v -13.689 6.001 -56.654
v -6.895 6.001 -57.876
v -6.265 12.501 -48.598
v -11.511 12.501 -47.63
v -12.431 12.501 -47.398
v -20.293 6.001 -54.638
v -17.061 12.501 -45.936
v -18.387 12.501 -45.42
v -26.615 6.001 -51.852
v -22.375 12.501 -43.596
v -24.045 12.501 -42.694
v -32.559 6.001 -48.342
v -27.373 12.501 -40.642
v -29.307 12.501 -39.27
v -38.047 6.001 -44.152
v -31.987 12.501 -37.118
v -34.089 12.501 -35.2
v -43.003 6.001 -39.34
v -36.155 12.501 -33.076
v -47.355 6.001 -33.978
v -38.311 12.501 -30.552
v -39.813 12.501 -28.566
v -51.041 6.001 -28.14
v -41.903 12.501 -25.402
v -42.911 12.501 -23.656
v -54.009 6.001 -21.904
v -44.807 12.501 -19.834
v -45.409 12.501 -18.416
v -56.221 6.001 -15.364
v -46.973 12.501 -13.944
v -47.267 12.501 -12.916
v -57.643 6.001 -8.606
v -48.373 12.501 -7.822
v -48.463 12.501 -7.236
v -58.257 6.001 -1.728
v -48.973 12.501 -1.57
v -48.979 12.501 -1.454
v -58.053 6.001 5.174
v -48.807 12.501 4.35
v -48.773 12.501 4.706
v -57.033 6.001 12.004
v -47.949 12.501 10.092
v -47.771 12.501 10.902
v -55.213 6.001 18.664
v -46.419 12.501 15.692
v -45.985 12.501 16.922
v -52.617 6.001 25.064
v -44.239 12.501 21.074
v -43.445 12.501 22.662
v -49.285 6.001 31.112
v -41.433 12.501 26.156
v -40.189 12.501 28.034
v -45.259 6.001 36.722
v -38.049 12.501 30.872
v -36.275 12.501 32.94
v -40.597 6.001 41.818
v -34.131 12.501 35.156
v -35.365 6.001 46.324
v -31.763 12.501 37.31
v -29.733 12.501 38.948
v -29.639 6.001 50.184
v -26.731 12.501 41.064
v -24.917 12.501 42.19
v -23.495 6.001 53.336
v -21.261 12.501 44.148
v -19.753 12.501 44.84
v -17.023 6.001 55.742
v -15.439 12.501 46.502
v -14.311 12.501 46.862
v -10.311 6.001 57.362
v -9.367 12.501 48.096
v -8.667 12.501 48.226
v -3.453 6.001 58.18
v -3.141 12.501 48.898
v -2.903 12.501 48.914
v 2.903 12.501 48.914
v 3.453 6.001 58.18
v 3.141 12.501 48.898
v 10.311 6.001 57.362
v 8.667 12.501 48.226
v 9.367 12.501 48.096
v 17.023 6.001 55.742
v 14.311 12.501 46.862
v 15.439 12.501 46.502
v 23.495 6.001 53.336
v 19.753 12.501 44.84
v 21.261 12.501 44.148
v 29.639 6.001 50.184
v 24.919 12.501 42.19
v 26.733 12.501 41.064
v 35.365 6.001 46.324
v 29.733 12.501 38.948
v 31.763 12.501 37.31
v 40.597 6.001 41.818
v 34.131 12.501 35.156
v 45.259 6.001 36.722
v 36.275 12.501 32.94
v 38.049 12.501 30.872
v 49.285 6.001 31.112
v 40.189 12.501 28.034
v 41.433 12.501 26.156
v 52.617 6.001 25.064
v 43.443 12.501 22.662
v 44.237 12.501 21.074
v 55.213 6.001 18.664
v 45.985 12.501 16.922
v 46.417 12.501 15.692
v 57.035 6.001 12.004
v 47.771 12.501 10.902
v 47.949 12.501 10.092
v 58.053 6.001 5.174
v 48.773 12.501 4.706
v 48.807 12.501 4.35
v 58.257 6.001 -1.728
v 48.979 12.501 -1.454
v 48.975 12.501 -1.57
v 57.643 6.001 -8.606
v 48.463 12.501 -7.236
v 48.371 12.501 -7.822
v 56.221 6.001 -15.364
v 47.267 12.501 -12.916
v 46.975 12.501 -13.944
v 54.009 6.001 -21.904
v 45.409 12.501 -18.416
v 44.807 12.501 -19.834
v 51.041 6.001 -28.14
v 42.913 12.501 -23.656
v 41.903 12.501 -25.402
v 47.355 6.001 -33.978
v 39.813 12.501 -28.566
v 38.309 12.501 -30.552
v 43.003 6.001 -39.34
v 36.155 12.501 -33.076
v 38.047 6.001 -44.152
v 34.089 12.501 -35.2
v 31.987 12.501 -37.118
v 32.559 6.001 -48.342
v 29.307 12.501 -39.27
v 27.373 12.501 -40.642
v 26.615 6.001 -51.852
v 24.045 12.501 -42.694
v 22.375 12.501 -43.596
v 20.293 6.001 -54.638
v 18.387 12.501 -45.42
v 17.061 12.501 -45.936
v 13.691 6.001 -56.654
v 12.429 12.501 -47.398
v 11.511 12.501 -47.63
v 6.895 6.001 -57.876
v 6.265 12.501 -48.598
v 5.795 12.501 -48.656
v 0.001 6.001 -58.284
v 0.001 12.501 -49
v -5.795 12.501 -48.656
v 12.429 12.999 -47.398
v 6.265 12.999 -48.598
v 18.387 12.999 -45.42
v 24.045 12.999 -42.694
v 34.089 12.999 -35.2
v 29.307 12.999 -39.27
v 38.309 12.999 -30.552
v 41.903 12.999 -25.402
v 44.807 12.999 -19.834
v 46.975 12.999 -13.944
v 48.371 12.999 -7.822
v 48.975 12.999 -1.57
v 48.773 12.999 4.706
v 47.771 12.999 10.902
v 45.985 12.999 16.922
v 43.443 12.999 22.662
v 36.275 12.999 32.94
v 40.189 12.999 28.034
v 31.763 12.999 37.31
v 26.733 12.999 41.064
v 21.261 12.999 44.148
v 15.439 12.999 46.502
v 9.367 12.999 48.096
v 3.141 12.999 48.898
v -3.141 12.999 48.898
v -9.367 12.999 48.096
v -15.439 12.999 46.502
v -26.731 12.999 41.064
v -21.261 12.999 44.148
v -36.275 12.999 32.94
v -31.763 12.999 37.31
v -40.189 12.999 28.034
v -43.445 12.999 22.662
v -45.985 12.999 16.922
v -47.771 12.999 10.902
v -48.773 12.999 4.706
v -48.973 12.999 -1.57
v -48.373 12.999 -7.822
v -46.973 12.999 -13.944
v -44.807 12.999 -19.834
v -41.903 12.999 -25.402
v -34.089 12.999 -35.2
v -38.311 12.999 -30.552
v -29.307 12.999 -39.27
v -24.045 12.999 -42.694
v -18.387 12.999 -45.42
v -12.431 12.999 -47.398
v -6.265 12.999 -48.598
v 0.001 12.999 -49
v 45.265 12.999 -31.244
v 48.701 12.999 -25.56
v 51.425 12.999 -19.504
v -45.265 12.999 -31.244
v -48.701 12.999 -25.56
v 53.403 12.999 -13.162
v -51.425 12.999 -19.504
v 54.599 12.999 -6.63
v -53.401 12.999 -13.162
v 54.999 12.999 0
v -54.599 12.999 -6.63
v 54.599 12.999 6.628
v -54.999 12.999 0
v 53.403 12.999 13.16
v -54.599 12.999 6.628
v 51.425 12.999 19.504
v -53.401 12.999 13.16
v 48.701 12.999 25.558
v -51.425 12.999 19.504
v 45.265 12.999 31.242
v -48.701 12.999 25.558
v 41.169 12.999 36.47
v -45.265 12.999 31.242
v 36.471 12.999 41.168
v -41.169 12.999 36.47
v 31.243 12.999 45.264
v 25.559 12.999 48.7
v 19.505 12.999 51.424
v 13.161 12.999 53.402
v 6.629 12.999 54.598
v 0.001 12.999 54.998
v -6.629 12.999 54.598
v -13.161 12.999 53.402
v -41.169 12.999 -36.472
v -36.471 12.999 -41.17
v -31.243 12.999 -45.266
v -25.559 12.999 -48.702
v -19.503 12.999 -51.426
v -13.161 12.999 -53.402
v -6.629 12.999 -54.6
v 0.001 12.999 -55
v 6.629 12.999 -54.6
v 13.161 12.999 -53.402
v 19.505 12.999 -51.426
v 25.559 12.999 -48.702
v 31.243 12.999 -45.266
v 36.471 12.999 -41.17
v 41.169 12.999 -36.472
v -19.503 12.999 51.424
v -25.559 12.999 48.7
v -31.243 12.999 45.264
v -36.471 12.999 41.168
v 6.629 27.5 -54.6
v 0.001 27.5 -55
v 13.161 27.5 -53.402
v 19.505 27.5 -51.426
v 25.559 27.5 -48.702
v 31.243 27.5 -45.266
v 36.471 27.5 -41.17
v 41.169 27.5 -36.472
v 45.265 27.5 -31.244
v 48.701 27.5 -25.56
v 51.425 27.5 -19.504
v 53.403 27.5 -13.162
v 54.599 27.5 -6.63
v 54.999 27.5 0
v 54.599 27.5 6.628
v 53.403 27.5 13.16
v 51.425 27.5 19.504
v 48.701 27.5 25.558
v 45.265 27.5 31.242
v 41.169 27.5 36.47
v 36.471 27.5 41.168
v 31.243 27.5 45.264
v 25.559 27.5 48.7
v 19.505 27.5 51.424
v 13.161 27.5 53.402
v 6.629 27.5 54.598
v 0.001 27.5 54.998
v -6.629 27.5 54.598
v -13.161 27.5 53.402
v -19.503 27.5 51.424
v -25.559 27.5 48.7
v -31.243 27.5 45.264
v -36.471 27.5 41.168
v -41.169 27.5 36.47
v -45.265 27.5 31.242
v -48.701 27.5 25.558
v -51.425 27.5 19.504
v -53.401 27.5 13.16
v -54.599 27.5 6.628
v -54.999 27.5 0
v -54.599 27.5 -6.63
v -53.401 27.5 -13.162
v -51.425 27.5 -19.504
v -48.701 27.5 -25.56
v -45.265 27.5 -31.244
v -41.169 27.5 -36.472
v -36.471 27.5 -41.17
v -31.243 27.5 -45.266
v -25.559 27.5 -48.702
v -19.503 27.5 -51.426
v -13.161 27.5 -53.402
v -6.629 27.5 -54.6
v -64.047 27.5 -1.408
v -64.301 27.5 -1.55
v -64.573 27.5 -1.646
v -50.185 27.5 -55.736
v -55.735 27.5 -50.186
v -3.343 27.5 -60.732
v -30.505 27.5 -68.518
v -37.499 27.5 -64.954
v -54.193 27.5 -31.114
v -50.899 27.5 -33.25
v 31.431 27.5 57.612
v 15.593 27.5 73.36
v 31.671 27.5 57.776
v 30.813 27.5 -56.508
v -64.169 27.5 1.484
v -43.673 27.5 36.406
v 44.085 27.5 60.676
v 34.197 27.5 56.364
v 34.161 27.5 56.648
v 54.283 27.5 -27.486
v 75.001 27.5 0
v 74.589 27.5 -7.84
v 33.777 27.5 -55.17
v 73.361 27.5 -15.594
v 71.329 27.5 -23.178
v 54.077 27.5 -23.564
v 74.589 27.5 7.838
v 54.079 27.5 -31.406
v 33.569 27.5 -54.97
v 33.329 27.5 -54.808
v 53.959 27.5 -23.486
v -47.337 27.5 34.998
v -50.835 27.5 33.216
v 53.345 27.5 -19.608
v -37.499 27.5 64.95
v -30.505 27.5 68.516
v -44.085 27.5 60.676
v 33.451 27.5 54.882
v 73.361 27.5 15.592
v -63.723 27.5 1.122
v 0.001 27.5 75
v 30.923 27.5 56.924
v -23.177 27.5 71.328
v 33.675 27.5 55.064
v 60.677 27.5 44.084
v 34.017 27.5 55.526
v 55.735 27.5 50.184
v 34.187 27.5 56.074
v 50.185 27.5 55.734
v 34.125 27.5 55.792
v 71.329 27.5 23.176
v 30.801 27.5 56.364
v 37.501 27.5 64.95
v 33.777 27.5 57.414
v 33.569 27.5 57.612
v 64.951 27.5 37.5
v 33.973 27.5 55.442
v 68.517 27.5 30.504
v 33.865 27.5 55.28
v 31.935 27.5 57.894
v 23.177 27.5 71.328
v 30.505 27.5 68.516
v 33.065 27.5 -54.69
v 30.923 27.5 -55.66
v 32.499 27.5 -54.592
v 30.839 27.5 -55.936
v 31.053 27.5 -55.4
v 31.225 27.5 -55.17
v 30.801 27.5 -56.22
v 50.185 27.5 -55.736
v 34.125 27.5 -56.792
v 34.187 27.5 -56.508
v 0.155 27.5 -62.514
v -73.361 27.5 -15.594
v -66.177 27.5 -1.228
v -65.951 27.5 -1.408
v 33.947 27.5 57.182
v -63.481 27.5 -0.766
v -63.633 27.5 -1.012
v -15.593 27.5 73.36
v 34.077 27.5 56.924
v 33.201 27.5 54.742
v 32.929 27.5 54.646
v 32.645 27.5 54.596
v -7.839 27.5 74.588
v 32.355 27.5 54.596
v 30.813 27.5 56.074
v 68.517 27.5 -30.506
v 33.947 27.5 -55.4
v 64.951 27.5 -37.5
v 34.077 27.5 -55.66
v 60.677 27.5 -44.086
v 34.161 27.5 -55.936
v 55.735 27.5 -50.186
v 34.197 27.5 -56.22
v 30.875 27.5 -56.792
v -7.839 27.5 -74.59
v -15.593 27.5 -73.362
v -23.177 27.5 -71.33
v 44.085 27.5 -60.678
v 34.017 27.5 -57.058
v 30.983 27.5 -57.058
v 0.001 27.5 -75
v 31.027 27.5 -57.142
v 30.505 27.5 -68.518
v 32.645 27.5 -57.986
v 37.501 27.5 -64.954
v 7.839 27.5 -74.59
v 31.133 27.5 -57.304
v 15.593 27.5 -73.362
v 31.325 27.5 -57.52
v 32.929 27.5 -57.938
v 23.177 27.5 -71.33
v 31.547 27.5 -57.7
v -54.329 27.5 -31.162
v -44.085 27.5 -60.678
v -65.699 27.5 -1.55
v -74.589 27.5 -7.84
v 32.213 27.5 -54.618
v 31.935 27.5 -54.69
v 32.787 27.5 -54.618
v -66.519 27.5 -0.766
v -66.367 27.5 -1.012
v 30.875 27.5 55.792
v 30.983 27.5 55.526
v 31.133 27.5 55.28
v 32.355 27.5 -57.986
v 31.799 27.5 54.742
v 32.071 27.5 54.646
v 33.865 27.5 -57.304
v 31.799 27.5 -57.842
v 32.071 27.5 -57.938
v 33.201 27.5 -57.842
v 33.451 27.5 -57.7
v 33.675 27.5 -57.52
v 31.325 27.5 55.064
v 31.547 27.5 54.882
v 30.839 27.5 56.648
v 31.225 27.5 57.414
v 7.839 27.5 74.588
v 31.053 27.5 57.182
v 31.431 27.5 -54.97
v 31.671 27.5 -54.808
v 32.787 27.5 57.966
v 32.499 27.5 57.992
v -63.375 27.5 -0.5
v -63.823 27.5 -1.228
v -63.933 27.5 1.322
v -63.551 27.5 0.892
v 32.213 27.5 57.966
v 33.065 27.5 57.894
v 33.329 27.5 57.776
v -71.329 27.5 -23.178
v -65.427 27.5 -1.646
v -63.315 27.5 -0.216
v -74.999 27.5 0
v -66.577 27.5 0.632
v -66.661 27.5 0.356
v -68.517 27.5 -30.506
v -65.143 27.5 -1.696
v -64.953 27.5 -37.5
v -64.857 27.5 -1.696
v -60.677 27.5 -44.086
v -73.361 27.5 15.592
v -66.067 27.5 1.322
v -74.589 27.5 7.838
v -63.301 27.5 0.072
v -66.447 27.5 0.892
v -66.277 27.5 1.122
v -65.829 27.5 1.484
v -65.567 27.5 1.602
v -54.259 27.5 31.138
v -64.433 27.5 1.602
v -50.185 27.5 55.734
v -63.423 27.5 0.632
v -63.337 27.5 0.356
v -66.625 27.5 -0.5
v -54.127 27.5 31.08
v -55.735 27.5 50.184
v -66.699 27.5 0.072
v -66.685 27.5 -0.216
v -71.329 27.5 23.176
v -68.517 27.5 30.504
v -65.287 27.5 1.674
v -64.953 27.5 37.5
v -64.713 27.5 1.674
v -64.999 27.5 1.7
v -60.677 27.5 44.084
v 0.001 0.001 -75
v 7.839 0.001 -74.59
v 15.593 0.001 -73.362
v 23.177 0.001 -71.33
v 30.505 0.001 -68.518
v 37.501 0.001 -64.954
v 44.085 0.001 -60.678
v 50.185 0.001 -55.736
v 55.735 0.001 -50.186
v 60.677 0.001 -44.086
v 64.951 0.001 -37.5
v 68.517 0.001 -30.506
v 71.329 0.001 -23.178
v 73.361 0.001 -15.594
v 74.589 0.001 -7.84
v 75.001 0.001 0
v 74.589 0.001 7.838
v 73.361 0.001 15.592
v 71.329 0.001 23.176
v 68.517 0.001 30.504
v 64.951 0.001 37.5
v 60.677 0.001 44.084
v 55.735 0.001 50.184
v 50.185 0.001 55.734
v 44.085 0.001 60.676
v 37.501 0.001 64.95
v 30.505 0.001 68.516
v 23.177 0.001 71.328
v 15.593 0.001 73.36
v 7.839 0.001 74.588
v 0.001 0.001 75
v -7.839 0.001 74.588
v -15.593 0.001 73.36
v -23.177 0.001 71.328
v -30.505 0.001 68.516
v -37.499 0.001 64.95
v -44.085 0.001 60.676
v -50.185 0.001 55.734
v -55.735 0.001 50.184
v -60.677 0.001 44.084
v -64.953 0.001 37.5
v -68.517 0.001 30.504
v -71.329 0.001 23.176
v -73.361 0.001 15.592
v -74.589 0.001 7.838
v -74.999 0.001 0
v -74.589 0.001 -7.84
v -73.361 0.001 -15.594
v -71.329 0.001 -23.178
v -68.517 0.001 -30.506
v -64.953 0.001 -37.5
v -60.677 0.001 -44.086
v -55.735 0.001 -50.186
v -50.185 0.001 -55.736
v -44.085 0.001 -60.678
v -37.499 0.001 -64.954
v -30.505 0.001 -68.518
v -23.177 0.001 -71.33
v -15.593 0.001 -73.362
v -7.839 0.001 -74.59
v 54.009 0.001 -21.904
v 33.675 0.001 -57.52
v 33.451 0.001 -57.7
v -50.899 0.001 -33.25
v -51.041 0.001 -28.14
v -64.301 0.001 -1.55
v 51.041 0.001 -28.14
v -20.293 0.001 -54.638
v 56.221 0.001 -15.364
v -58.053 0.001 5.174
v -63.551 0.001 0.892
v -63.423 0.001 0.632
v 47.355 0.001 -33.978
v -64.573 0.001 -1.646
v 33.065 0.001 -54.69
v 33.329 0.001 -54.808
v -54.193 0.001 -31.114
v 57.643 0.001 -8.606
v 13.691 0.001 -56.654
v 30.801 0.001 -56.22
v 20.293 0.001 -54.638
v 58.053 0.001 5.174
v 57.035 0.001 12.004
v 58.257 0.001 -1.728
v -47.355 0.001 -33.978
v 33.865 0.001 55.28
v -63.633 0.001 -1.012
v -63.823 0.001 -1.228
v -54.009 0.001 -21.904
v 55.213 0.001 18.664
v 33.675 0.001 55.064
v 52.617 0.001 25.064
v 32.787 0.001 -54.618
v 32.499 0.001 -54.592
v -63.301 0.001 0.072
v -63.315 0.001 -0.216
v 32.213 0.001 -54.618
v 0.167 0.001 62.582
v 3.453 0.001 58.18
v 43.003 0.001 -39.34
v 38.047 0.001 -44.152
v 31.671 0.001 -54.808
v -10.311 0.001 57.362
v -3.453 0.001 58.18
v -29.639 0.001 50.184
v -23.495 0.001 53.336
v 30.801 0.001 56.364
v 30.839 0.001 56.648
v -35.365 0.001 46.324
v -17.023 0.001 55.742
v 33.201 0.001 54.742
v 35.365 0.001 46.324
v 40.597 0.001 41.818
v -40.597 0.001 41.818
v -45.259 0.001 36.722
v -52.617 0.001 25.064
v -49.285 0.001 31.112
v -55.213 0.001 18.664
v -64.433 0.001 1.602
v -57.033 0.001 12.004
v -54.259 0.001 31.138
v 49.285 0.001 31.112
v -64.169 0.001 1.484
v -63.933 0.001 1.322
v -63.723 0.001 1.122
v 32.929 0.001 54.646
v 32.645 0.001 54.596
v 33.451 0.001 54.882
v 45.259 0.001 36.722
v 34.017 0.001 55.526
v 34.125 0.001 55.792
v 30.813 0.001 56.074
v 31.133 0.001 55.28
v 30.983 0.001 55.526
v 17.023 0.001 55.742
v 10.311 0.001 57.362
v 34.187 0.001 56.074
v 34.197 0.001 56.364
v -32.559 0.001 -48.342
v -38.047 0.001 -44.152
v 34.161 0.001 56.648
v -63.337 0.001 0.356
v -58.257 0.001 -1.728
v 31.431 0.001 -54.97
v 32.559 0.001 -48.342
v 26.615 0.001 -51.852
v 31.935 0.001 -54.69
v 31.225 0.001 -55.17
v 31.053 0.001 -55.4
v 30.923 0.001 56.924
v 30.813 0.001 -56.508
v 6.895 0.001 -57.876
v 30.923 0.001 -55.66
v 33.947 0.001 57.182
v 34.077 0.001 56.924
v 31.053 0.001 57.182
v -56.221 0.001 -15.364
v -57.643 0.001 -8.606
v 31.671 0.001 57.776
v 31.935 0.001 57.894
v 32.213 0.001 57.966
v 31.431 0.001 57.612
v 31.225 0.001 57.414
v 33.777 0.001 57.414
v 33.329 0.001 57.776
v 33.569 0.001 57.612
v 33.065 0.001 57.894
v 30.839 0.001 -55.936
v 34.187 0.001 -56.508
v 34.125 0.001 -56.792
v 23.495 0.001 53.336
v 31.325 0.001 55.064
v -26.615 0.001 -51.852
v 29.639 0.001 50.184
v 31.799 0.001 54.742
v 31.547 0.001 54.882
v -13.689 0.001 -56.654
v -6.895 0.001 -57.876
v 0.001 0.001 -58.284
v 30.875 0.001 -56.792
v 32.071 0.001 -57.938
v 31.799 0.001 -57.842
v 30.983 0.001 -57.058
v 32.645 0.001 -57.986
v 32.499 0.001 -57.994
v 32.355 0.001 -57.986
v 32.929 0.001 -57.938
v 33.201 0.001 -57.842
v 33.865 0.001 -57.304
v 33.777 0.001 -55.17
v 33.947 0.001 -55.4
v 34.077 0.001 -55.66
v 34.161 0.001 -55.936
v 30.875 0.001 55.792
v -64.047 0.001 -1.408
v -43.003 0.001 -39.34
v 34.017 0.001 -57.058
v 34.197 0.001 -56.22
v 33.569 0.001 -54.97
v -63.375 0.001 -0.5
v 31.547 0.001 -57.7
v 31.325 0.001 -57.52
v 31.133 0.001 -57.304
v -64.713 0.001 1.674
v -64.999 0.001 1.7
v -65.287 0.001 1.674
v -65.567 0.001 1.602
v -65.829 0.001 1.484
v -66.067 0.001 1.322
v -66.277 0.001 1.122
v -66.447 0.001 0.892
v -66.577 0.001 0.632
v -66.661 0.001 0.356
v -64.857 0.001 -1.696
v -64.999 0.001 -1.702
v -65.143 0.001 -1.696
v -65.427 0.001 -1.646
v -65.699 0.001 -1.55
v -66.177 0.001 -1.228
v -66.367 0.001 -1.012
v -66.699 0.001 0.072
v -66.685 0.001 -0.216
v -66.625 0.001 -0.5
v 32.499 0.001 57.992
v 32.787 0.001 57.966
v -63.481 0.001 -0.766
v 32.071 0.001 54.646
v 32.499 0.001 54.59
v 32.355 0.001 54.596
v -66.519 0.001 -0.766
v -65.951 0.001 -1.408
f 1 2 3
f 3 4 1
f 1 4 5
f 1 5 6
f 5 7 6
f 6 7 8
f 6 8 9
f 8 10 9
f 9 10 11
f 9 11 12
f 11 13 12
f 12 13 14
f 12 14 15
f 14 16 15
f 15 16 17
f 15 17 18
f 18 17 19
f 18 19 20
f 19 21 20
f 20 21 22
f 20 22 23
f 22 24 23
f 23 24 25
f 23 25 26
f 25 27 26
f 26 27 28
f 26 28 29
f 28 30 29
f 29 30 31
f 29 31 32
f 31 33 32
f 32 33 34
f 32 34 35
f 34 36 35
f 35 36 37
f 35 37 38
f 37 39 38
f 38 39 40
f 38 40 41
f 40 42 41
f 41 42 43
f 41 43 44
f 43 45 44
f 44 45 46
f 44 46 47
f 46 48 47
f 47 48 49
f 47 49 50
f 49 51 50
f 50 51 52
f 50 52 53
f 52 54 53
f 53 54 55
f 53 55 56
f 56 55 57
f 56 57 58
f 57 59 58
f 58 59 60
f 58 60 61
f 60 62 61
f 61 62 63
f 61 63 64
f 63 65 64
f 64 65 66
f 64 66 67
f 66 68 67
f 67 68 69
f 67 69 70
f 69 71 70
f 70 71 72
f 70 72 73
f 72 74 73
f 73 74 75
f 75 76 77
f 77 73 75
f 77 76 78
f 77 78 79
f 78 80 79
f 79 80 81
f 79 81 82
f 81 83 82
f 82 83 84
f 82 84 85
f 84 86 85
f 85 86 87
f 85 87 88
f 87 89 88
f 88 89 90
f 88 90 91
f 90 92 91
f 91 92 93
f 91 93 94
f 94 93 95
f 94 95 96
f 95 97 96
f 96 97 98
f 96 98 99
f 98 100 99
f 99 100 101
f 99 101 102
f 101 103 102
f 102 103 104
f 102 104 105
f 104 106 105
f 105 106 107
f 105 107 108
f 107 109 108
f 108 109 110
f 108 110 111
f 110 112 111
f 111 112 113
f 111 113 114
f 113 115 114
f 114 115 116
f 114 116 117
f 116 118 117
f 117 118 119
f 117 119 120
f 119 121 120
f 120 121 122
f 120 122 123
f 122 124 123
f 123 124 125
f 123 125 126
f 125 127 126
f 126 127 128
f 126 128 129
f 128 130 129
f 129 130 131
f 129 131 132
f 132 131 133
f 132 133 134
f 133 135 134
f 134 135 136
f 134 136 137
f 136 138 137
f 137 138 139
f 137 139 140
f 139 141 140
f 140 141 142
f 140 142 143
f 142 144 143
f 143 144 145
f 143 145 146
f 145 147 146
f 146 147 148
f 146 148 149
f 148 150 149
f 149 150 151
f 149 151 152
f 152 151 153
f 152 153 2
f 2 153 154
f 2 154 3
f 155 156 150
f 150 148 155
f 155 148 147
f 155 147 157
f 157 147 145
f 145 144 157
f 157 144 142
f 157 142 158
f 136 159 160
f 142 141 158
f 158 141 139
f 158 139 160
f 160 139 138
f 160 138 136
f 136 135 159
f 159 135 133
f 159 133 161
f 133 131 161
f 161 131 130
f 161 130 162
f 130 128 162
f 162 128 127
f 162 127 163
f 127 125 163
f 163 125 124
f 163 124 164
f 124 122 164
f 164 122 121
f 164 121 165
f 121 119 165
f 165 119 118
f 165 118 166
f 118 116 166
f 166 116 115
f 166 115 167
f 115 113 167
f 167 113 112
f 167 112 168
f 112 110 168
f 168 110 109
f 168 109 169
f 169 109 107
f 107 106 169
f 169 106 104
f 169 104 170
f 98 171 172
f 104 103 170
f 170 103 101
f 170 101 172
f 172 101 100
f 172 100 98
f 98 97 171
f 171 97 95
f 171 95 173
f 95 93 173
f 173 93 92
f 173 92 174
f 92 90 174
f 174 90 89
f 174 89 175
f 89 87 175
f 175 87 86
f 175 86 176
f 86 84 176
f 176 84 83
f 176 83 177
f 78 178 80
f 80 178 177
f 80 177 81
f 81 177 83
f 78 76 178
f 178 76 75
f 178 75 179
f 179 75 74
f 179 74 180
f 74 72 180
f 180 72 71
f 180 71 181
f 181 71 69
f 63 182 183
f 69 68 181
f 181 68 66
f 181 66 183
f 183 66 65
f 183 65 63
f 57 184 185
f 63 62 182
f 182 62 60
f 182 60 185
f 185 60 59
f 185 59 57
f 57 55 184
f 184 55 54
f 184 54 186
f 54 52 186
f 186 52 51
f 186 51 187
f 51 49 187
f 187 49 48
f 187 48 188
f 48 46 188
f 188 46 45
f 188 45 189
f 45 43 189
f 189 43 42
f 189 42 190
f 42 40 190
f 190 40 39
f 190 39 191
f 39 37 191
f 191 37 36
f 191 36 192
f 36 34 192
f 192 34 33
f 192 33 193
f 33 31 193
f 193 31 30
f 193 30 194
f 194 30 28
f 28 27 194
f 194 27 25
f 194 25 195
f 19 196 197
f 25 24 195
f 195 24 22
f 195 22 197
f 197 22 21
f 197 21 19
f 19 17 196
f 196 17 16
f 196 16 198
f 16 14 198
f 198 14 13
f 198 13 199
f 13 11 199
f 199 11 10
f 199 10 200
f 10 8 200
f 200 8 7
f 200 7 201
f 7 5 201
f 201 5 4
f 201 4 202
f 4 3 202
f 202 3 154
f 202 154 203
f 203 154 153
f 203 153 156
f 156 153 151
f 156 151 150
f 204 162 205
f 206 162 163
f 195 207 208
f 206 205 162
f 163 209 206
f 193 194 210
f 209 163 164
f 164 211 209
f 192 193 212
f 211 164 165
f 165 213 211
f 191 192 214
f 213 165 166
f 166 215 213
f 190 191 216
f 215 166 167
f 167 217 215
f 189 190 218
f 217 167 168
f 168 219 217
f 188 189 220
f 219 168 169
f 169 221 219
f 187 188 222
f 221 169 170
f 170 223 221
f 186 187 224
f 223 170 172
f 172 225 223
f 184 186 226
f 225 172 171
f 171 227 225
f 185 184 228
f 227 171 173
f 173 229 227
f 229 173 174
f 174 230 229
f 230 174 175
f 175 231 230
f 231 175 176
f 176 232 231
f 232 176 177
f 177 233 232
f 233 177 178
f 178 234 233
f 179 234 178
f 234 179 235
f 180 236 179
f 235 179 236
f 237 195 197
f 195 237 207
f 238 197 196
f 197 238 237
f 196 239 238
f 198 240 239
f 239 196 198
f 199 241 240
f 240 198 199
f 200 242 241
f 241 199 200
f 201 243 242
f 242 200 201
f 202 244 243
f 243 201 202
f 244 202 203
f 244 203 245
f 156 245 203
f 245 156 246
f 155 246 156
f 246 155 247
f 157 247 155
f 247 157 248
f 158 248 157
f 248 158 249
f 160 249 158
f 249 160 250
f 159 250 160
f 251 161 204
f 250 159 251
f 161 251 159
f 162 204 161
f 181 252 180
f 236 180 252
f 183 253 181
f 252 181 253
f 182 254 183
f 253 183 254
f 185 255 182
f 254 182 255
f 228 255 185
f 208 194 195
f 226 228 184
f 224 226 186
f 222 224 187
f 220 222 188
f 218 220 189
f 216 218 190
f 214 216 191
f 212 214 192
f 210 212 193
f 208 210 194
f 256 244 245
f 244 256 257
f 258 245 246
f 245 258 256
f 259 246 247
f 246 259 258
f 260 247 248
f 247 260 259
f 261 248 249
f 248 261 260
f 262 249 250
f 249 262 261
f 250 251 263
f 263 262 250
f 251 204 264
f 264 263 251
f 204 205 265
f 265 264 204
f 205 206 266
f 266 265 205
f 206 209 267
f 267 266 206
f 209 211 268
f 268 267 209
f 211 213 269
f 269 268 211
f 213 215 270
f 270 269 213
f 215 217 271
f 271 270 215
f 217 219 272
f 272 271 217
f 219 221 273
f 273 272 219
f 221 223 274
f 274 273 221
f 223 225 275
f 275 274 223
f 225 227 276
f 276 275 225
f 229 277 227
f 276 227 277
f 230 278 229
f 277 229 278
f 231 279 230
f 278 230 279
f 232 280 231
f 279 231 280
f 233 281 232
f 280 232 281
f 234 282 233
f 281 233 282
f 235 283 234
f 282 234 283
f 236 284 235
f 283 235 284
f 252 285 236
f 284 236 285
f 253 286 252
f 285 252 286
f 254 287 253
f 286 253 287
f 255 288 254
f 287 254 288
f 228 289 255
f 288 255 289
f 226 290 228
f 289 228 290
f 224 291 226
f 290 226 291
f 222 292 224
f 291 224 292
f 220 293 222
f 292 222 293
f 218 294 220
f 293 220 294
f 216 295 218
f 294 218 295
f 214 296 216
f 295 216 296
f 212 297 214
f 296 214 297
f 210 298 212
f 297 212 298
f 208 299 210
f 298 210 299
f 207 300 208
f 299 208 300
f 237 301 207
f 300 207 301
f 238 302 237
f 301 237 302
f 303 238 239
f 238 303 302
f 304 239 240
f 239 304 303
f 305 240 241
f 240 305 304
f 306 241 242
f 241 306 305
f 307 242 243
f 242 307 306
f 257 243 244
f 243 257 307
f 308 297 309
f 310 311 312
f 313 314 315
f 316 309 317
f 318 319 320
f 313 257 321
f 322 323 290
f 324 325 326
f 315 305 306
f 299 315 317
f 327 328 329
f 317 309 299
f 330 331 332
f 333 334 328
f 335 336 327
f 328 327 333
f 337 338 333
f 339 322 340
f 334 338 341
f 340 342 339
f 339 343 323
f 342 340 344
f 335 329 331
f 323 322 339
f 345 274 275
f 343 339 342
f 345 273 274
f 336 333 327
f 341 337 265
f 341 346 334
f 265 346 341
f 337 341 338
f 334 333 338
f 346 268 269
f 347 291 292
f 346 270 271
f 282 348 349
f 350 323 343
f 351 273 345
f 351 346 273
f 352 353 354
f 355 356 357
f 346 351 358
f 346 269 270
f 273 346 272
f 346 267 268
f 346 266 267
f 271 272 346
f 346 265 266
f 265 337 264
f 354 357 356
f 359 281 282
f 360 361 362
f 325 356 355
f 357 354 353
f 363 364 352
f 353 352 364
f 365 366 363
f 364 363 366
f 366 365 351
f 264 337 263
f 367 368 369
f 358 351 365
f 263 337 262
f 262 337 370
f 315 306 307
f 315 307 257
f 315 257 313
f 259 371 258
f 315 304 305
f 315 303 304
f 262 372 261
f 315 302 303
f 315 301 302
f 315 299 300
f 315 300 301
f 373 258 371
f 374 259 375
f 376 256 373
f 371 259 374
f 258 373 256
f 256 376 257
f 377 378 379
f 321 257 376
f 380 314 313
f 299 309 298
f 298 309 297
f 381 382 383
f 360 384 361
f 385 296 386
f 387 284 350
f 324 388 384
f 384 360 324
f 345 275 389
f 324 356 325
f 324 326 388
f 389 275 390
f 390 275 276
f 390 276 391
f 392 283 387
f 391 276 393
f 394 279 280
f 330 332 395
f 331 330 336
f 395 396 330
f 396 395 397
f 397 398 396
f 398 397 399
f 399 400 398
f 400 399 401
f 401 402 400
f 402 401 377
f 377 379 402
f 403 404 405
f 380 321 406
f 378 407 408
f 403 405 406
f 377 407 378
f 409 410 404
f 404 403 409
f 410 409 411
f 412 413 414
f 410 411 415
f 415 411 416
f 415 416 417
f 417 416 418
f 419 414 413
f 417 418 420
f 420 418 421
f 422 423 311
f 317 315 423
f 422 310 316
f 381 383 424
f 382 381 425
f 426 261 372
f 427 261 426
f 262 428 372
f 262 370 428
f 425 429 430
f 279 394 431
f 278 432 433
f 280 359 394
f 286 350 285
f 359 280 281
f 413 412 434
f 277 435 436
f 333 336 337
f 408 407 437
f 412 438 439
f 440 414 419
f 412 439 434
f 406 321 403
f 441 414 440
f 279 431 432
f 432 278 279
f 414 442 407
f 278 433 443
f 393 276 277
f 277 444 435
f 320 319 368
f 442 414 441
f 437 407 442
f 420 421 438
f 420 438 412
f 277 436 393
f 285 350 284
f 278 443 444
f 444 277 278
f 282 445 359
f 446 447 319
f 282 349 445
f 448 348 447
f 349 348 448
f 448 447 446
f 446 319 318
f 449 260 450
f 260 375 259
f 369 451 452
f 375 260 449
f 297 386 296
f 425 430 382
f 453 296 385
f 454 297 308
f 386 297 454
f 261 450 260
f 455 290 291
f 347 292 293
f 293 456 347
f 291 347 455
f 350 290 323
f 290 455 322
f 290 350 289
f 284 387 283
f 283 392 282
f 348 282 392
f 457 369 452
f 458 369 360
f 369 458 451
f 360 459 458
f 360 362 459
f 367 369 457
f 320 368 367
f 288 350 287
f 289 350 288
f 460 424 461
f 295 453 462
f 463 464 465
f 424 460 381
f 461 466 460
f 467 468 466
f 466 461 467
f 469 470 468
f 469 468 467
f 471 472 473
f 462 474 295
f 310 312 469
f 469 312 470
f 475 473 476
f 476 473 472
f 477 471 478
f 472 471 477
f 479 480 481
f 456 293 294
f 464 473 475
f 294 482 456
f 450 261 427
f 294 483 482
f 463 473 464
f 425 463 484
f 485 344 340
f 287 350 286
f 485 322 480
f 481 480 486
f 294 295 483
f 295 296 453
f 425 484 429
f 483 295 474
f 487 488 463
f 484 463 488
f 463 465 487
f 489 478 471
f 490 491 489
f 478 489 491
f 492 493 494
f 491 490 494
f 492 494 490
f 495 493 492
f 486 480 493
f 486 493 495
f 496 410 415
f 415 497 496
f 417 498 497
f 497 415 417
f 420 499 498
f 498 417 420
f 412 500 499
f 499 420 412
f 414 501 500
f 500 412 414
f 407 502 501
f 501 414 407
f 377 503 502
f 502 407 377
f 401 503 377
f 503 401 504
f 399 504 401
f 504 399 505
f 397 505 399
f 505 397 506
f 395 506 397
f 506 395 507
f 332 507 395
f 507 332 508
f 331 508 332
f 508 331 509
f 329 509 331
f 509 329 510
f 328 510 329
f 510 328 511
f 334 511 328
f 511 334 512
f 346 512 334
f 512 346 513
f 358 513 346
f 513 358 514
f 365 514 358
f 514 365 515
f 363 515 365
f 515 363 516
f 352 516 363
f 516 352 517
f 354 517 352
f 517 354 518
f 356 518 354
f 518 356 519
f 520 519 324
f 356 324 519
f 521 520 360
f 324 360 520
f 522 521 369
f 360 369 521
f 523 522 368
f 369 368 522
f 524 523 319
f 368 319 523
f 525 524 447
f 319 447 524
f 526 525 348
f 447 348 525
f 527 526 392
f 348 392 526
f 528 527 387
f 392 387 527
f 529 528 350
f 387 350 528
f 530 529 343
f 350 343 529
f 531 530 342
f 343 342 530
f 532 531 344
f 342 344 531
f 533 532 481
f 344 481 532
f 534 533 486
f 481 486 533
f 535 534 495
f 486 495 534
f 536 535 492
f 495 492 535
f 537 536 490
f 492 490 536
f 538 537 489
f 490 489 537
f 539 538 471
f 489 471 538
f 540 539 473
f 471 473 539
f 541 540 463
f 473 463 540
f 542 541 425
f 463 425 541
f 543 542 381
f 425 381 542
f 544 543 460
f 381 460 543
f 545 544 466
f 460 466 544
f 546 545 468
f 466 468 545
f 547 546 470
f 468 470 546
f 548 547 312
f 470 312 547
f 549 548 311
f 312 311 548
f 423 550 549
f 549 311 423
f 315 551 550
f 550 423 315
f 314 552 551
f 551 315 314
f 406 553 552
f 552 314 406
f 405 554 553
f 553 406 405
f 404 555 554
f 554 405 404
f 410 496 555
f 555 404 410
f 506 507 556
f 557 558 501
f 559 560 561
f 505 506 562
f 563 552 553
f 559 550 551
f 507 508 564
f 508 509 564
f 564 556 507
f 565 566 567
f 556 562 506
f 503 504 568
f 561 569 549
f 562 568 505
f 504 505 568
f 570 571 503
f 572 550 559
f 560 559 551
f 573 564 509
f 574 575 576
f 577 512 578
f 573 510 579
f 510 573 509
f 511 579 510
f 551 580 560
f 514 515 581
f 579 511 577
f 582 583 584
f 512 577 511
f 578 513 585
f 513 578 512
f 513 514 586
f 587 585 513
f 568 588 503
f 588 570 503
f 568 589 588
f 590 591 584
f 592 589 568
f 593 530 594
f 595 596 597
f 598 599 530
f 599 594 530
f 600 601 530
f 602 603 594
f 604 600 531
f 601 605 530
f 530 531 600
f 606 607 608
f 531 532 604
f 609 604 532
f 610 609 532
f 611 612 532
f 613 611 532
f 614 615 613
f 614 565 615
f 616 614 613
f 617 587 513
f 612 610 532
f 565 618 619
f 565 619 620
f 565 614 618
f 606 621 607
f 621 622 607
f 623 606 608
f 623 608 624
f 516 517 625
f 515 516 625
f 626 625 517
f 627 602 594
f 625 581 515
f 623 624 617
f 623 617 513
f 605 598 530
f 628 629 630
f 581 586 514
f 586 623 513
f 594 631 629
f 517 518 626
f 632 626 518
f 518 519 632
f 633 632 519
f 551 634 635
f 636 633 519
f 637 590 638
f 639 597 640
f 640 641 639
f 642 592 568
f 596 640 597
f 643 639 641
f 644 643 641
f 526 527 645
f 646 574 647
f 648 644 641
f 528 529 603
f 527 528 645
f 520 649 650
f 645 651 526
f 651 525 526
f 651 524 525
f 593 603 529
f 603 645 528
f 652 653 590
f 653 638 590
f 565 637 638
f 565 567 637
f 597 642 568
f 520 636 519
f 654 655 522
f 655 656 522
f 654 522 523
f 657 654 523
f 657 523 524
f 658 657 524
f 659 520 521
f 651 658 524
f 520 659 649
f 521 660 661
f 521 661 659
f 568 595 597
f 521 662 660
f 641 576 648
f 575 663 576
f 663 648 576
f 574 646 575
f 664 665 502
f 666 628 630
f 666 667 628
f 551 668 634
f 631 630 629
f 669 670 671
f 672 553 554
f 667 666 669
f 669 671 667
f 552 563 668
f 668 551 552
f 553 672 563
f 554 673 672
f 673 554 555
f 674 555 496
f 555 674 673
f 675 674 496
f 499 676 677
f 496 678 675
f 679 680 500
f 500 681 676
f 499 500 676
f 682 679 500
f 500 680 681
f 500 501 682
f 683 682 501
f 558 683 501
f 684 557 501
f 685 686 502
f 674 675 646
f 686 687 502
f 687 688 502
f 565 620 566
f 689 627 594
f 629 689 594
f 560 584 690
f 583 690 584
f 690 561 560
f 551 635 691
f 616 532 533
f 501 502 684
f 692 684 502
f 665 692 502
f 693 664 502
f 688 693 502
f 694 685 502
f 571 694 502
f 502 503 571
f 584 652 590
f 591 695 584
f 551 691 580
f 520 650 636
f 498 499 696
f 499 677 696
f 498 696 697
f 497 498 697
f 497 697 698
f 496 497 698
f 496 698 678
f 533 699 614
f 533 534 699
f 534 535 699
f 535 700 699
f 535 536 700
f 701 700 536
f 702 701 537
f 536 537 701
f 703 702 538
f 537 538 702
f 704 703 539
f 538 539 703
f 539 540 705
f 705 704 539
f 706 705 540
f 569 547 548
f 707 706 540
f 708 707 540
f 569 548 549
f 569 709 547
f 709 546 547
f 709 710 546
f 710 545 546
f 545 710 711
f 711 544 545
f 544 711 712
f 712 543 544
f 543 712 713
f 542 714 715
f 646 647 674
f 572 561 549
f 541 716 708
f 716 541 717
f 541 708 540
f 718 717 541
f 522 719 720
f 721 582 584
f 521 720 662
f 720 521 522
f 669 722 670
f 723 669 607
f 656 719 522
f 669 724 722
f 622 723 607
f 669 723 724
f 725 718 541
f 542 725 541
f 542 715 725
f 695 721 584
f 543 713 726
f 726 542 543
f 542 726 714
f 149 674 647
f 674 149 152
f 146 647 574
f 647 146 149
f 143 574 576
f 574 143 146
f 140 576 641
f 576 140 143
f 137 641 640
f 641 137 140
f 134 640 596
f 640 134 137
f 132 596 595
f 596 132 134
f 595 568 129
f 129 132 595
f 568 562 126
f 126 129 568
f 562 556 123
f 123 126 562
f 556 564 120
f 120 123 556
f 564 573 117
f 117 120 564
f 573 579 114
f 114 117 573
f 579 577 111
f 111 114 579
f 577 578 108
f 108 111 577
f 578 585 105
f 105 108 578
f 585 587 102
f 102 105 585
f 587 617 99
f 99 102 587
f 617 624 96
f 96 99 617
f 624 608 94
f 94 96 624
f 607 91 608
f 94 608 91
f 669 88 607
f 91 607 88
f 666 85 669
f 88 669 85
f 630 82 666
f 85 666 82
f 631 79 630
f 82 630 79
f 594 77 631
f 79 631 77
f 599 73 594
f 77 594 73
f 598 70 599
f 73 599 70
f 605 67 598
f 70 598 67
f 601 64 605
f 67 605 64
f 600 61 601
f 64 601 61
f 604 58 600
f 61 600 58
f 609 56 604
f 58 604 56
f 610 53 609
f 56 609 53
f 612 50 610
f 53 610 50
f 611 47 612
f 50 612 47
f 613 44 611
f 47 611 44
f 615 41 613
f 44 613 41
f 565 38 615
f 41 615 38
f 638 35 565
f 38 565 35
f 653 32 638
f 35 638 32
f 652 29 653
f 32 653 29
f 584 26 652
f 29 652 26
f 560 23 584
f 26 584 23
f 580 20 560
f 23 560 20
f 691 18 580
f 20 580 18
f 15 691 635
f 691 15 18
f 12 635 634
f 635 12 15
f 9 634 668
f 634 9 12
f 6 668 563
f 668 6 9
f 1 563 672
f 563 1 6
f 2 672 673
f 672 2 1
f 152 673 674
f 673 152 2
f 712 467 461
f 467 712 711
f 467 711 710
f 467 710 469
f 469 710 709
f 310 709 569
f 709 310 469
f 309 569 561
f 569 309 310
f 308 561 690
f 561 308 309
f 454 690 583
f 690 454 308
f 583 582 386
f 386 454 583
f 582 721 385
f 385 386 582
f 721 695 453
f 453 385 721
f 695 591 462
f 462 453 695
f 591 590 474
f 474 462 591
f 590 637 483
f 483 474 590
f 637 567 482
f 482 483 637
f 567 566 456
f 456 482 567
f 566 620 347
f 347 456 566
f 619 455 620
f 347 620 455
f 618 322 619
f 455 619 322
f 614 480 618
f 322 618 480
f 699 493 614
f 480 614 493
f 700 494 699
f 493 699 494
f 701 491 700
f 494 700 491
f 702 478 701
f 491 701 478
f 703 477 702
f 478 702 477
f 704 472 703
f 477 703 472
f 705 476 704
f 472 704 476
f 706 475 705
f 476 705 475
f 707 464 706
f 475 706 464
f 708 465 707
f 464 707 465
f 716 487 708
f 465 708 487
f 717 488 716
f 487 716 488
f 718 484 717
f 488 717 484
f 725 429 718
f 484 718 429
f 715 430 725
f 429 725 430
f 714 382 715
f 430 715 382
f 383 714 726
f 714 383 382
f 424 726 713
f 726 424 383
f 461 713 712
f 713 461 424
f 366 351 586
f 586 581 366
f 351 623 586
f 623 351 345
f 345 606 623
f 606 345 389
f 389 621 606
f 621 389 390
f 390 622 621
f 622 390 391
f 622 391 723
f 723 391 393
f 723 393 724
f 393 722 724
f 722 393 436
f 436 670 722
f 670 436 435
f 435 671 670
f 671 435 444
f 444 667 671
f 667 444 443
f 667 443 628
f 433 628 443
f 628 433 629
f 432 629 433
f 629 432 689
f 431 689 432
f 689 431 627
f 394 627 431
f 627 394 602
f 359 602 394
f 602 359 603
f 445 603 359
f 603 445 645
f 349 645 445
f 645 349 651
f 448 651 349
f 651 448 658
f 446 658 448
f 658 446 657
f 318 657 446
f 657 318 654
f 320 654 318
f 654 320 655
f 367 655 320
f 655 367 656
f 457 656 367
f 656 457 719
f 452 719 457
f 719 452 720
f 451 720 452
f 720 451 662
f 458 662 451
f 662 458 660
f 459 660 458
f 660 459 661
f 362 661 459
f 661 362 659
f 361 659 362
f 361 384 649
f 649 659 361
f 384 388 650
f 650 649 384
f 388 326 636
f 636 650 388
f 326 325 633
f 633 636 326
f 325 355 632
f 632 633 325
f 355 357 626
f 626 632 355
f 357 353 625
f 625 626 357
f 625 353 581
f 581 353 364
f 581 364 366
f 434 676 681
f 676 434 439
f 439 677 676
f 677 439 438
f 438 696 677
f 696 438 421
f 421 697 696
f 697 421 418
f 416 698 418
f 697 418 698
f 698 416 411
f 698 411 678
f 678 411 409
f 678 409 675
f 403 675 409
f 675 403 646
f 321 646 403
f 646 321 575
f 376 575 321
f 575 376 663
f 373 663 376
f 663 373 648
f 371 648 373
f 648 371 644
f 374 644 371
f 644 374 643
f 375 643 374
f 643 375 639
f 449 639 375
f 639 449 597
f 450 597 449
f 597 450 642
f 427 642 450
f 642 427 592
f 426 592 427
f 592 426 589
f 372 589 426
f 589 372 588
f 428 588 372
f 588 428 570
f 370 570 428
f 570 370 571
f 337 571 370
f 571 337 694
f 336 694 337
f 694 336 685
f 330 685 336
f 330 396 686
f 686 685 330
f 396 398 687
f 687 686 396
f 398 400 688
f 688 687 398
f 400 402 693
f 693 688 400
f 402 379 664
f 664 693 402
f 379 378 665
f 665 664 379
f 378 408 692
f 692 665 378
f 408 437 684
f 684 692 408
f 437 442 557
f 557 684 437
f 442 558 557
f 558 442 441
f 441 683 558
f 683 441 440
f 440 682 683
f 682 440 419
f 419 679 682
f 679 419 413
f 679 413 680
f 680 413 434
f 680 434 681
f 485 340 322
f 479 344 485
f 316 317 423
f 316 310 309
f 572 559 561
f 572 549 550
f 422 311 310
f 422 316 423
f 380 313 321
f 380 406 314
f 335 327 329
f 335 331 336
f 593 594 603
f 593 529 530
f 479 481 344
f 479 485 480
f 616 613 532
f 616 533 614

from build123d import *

# Parameters (mm, degrees)
CROQUIS2_R            = 1.7
CORTAR_EXTRUIR1_DEPTH = 59
MATRIZC1_COUNT        = 3


with BuildPart() as part:
    # Croquis1 → Revolución1 (revolve)
    with BuildSketch(Plane.XY):
        Polygon((58.282962044, 6), (58.282962044, 0), (75, 0), (75, 27.5), (55, 27.5), (55, 13), (49, 13), (49, 12.5), align=None)
    revolve(axis=Axis((0, 0, 0), (0, 1, 0)))

    # Croquis2 → Cortar-Extruir1 (cut)
    with BuildSketch(Plane(origin=(0, 27.5, 0), x_dir=(1, 0, 0), z_dir=(0, 1, 0))):
        with Locations((-65, 0)):
            Circle(CROQUIS2_R)
    cortar_extruir1 = extrude(amount=-CORTAR_EXTRUIR1_DEPTH, mode=Mode.SUBTRACT)

    # MatrizC1: Cortar-Extruir1 ×3 about axis
    matrizc1_axis = Axis((0, 0, 0), (0, 1, 0))
    for i in range(1, MATRIZC1_COUNT):
        add(cortar_extruir1.rotate(matrizc1_axis, i * 360 / MATRIZC1_COUNT), mode=Mode.SUBTRACT)


solid = part.part
